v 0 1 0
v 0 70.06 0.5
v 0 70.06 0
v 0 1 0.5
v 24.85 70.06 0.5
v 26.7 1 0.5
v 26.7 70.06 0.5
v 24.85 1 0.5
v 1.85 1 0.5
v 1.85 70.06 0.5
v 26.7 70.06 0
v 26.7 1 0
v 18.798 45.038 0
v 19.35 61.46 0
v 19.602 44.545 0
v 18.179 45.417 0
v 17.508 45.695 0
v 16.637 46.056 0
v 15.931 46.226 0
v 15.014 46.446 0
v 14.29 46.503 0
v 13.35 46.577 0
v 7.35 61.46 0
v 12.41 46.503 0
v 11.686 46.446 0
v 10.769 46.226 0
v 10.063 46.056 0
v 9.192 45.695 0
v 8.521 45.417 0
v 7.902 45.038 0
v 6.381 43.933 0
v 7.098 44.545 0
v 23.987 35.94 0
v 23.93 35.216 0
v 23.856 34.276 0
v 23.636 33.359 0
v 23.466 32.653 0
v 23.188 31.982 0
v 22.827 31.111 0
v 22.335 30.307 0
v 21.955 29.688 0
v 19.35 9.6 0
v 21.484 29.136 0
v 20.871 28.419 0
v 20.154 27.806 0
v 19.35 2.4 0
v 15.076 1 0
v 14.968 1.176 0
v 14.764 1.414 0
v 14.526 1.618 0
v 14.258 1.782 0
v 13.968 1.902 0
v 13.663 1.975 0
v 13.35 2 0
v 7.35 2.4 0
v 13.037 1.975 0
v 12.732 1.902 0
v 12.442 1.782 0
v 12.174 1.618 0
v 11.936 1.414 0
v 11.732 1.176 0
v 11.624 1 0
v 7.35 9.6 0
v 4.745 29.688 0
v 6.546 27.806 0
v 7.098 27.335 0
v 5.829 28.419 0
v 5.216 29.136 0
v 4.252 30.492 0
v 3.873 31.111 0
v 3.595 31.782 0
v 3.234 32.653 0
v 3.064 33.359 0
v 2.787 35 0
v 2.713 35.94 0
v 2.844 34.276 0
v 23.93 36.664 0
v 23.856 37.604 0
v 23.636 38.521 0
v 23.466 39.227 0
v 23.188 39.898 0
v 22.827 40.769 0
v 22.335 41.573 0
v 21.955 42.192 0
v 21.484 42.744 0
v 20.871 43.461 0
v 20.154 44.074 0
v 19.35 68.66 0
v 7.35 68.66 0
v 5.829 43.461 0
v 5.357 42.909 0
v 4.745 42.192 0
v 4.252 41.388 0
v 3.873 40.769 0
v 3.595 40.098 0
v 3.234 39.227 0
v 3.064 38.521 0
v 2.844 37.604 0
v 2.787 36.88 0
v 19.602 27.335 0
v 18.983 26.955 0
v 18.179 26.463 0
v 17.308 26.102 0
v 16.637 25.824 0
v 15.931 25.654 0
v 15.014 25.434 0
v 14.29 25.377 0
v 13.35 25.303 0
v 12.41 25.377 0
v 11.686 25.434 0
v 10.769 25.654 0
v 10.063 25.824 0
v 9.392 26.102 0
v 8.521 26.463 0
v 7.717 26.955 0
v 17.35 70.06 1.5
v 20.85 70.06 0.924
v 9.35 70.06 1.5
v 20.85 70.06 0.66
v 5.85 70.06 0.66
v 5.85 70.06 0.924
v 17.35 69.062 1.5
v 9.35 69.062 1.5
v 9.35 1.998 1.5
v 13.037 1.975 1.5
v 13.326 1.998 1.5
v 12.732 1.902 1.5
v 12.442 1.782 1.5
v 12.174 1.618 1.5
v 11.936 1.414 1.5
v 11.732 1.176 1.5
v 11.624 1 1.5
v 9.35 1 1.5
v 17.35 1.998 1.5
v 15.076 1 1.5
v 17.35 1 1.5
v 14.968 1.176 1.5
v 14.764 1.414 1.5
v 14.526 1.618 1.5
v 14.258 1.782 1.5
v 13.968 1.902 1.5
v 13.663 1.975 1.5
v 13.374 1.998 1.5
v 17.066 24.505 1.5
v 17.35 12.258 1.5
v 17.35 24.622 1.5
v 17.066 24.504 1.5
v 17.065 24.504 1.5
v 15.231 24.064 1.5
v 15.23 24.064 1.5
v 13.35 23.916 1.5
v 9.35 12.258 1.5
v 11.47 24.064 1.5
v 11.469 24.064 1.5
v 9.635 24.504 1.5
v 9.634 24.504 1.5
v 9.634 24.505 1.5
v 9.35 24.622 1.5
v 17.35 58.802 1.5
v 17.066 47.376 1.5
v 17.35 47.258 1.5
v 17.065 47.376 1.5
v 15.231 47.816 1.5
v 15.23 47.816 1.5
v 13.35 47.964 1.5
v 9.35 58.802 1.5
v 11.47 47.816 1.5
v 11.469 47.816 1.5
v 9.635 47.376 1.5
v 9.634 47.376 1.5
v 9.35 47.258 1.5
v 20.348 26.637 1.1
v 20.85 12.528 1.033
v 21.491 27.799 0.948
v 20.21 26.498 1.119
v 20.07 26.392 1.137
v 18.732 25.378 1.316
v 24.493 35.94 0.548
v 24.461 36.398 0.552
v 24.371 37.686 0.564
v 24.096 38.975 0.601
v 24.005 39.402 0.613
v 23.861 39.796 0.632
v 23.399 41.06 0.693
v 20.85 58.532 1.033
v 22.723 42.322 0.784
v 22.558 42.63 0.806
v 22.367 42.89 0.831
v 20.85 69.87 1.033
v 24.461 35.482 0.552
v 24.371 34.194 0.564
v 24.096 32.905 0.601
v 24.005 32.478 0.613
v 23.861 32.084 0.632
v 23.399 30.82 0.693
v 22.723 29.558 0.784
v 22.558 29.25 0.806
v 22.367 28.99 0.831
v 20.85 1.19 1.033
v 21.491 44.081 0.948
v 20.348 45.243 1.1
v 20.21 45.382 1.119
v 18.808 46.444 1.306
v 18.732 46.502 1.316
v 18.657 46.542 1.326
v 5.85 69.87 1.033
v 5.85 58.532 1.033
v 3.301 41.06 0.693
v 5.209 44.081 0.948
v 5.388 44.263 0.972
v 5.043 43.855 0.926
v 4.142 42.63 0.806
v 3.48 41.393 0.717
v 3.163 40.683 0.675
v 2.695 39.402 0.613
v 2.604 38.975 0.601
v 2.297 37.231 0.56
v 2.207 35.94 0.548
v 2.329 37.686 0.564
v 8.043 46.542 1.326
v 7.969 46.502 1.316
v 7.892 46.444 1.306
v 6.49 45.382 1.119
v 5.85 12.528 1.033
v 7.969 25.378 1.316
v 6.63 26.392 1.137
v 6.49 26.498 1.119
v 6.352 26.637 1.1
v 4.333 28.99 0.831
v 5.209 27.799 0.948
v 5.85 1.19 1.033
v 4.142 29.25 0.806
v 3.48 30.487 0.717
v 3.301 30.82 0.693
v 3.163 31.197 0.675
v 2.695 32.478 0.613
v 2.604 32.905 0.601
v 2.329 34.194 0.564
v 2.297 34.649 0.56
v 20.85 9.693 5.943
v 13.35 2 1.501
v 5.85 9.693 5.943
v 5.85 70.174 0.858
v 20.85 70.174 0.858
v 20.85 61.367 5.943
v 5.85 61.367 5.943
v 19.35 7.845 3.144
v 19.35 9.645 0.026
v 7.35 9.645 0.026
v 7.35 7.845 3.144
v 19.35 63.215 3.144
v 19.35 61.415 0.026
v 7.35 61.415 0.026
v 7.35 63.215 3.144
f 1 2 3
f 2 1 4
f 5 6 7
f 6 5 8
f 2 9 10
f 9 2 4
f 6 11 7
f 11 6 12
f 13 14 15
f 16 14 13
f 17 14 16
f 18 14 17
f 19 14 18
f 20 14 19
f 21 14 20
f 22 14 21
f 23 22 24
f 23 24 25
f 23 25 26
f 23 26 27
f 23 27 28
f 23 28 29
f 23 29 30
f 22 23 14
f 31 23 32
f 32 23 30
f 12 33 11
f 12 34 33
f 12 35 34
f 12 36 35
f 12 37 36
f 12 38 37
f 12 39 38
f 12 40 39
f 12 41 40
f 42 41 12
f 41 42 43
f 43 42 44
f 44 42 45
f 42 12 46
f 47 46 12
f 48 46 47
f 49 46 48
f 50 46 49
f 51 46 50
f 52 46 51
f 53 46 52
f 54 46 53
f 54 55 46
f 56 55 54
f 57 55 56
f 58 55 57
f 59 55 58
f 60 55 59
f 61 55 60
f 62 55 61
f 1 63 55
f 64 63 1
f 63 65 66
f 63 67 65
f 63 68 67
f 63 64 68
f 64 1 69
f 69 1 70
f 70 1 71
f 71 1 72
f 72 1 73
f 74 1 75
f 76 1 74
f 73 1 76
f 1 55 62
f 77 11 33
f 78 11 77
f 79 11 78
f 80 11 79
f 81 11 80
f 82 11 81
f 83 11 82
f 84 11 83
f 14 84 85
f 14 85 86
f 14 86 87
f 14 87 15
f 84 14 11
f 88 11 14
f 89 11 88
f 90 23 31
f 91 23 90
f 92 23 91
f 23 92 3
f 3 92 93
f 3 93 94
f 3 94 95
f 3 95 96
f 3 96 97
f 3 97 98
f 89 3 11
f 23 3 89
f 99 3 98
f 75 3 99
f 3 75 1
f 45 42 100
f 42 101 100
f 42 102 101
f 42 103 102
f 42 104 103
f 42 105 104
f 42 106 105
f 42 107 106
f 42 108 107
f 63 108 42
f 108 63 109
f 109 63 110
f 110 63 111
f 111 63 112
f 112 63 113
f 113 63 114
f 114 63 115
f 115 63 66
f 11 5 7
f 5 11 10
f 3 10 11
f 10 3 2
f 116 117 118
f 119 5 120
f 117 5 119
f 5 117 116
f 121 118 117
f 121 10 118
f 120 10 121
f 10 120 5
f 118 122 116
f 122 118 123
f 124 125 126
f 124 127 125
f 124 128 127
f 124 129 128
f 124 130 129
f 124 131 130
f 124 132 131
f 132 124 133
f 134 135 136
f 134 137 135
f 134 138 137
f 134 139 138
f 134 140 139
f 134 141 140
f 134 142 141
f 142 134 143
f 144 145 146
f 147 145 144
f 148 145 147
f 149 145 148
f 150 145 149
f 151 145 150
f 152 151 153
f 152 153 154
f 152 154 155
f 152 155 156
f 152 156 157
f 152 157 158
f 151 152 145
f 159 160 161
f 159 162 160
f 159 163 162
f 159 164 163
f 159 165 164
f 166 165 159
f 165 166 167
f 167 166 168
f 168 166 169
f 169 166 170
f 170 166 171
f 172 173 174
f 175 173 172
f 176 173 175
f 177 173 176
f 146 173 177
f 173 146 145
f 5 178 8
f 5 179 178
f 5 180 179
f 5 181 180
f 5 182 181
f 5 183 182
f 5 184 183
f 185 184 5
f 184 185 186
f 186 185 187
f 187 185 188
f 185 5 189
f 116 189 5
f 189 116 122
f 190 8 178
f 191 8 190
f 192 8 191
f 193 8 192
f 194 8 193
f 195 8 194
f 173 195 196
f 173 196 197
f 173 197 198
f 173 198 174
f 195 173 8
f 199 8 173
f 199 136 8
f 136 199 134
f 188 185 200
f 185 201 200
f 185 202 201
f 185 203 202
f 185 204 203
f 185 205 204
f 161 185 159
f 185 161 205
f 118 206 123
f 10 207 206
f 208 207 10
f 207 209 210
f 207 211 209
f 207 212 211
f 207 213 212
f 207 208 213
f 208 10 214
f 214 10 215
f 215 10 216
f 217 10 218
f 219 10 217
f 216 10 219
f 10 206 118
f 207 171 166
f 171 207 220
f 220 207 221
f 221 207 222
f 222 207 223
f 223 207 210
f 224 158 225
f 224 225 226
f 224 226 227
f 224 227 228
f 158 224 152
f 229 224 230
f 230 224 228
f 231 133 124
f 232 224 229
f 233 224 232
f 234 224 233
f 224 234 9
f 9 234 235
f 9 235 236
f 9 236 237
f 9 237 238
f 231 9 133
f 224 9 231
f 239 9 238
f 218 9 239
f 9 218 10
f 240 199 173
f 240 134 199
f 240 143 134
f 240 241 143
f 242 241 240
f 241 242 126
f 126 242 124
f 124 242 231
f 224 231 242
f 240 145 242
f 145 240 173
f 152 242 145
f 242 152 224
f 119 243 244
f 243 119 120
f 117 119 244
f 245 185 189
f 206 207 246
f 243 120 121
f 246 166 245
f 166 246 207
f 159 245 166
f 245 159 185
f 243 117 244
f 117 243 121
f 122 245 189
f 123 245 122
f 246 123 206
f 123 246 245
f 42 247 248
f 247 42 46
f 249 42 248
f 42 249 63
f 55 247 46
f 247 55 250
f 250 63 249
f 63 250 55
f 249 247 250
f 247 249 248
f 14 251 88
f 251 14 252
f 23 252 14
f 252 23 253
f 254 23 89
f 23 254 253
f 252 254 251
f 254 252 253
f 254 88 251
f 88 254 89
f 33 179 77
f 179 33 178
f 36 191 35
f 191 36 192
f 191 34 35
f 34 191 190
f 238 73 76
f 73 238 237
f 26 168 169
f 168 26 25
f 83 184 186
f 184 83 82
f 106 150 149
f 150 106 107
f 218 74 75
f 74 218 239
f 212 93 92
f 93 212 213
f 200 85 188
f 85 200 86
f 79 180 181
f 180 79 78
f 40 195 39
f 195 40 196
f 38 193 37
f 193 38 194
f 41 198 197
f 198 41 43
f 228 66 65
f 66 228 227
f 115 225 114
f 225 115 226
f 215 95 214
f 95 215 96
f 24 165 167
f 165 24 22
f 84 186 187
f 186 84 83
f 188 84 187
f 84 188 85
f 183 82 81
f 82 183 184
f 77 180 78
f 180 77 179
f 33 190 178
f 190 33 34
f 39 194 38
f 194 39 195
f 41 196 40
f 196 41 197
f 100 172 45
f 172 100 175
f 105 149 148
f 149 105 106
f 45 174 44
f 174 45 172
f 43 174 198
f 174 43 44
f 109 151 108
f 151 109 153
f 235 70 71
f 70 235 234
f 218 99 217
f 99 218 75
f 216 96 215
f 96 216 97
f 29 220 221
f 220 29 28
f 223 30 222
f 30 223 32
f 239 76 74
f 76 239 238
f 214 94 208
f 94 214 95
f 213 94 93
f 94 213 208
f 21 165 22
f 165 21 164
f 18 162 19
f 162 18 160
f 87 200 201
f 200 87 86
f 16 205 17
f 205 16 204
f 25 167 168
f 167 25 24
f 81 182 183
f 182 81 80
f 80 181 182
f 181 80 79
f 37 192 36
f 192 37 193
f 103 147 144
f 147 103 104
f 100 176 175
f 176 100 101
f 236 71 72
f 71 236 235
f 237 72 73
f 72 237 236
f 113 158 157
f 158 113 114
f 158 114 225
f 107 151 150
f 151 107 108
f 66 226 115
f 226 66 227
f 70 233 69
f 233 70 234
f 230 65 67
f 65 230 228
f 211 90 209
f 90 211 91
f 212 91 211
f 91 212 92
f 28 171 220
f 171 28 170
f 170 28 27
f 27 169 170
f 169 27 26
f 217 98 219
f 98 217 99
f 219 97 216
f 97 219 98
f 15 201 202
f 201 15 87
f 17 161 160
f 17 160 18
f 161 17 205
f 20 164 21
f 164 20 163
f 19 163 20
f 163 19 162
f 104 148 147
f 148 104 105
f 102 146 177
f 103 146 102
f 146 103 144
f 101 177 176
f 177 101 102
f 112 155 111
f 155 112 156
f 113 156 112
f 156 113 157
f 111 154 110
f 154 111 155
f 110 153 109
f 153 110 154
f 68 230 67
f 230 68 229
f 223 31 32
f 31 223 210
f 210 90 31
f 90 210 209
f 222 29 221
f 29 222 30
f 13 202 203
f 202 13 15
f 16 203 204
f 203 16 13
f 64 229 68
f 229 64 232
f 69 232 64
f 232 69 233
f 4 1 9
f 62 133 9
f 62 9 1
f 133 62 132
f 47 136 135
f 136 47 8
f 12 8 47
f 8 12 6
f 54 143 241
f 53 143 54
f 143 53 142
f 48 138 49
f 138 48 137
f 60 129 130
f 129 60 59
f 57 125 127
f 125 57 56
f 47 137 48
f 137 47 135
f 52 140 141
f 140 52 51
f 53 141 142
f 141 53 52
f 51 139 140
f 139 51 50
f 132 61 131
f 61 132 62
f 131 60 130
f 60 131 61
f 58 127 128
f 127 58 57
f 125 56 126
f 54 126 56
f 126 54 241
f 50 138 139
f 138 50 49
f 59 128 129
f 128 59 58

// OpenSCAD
$fn=40;

/* Diffuser Lense For A Particular Project (OpenSCAD) */

/* Camera */
cam_dia = 10.5;

/* LED PCB */
ledpcbw = 26.7;
ledpcbh = 71.88;
ledpcb_thickness = 3.47;
ledpcb_header_pos = 25;
ledpcb_header_w = 9;
holedia = (cam_dia + 8);

/* Diffuser */
diffuserw=ledpcbw;
diffuserh=ledpcbh-1.82;
thickness=ledpcb_thickness-1.59;

/* Top Diffuser */
diffuser_top_h=0.5;

/* Bottom Diffuser */
diffuser_bottom_h=1;

/* Enclosure hole */
enclosurew = ledpcb_header_pos-2;

/* SMD LED */
ledh = 2.76-1.59;
ledw = 4;
ledd = 1.6;

/* INSET */
led_mount_inset = 5;
led_mount_angle = 180-60;
led_mount_tol=2;
led_mount_thickness=3;

module led_mount(rotation, w, d, h)
{
  rotate([rotation,0,0])
    union()
    {
      translate([ledpcbw/2 - w/2, -d/2, -h])
        cube([w,d,h+4]);
    }
}

difference()
{
  union()
  { 
    // Main object
    difference()
    {
      union()
      { // Main Body
        
        // Top Diffuser
        cube([diffuserw,diffuserh,diffuser_top_h]);
        
        // Bottom Diffuser
        bottom_flat_width = ledw;
        hull()
        {
          translate([(diffuserw - enclosurew)/2,0,0])
            cube([enclosurew,diffuserh,diffuser_top_h]);
          translate([ledpcbw/2 - bottom_flat_width,0,diffuser_top_h])
            cube([bottom_flat_width*2, diffuserh, diffuser_bottom_h]);
        }
        
        // LED Holes
        translate([0,1+led_mount_inset,0])
          led_mount(led_mount_angle,ledw+led_mount_tol*4+led_mount_thickness,ledd+led_mount_tol+led_mount_thickness,ledh+led_mount_thickness+2);
        translate([0,diffuserh-led_mount_inset,0])
          led_mount(-led_mount_angle,ledw+led_mount_tol*4+led_mount_thickness,ledd+led_mount_tol+led_mount_thickness,ledh+led_mount_thickness+2);
      }

      // LED Holes
      translate([0,1+led_mount_inset,0])
        led_mount(led_mount_angle,ledw+led_mount_tol*4,ledd+led_mount_tol,ledh+2);
      translate([0,diffuserh-led_mount_inset,0])
        led_mount(-led_mount_angle,ledw+led_mount_tol*4,ledd+led_mount_tol,ledh+2);

      // Camera Hole
      translate([ledpcbw/2,ledpcbh/2,-thickness/2])
        cylinder(thickness*3,d=holedia);

      // Camera Hole Bottom Lip
      translate([ledpcbw/2,ledpcbh/2, diffuser_top_h+diffuser_bottom_h-3+0.001])
        cylinder(3, d1=holedia, d2=holedia*1.3);
     }
  }
  
  /* Trimming */
  translate([0,0,-thickness])
    cube([diffuserw,1,thickness*4]);
  
  /* Remove bottom */
  translate([0,0,-5])
    cube([1000,1000,10], center=true);  
  
  /* Trimming */
  translate([ledpcbw/2,0,-thickness])
    cylinder(r=2,h=100);
}
